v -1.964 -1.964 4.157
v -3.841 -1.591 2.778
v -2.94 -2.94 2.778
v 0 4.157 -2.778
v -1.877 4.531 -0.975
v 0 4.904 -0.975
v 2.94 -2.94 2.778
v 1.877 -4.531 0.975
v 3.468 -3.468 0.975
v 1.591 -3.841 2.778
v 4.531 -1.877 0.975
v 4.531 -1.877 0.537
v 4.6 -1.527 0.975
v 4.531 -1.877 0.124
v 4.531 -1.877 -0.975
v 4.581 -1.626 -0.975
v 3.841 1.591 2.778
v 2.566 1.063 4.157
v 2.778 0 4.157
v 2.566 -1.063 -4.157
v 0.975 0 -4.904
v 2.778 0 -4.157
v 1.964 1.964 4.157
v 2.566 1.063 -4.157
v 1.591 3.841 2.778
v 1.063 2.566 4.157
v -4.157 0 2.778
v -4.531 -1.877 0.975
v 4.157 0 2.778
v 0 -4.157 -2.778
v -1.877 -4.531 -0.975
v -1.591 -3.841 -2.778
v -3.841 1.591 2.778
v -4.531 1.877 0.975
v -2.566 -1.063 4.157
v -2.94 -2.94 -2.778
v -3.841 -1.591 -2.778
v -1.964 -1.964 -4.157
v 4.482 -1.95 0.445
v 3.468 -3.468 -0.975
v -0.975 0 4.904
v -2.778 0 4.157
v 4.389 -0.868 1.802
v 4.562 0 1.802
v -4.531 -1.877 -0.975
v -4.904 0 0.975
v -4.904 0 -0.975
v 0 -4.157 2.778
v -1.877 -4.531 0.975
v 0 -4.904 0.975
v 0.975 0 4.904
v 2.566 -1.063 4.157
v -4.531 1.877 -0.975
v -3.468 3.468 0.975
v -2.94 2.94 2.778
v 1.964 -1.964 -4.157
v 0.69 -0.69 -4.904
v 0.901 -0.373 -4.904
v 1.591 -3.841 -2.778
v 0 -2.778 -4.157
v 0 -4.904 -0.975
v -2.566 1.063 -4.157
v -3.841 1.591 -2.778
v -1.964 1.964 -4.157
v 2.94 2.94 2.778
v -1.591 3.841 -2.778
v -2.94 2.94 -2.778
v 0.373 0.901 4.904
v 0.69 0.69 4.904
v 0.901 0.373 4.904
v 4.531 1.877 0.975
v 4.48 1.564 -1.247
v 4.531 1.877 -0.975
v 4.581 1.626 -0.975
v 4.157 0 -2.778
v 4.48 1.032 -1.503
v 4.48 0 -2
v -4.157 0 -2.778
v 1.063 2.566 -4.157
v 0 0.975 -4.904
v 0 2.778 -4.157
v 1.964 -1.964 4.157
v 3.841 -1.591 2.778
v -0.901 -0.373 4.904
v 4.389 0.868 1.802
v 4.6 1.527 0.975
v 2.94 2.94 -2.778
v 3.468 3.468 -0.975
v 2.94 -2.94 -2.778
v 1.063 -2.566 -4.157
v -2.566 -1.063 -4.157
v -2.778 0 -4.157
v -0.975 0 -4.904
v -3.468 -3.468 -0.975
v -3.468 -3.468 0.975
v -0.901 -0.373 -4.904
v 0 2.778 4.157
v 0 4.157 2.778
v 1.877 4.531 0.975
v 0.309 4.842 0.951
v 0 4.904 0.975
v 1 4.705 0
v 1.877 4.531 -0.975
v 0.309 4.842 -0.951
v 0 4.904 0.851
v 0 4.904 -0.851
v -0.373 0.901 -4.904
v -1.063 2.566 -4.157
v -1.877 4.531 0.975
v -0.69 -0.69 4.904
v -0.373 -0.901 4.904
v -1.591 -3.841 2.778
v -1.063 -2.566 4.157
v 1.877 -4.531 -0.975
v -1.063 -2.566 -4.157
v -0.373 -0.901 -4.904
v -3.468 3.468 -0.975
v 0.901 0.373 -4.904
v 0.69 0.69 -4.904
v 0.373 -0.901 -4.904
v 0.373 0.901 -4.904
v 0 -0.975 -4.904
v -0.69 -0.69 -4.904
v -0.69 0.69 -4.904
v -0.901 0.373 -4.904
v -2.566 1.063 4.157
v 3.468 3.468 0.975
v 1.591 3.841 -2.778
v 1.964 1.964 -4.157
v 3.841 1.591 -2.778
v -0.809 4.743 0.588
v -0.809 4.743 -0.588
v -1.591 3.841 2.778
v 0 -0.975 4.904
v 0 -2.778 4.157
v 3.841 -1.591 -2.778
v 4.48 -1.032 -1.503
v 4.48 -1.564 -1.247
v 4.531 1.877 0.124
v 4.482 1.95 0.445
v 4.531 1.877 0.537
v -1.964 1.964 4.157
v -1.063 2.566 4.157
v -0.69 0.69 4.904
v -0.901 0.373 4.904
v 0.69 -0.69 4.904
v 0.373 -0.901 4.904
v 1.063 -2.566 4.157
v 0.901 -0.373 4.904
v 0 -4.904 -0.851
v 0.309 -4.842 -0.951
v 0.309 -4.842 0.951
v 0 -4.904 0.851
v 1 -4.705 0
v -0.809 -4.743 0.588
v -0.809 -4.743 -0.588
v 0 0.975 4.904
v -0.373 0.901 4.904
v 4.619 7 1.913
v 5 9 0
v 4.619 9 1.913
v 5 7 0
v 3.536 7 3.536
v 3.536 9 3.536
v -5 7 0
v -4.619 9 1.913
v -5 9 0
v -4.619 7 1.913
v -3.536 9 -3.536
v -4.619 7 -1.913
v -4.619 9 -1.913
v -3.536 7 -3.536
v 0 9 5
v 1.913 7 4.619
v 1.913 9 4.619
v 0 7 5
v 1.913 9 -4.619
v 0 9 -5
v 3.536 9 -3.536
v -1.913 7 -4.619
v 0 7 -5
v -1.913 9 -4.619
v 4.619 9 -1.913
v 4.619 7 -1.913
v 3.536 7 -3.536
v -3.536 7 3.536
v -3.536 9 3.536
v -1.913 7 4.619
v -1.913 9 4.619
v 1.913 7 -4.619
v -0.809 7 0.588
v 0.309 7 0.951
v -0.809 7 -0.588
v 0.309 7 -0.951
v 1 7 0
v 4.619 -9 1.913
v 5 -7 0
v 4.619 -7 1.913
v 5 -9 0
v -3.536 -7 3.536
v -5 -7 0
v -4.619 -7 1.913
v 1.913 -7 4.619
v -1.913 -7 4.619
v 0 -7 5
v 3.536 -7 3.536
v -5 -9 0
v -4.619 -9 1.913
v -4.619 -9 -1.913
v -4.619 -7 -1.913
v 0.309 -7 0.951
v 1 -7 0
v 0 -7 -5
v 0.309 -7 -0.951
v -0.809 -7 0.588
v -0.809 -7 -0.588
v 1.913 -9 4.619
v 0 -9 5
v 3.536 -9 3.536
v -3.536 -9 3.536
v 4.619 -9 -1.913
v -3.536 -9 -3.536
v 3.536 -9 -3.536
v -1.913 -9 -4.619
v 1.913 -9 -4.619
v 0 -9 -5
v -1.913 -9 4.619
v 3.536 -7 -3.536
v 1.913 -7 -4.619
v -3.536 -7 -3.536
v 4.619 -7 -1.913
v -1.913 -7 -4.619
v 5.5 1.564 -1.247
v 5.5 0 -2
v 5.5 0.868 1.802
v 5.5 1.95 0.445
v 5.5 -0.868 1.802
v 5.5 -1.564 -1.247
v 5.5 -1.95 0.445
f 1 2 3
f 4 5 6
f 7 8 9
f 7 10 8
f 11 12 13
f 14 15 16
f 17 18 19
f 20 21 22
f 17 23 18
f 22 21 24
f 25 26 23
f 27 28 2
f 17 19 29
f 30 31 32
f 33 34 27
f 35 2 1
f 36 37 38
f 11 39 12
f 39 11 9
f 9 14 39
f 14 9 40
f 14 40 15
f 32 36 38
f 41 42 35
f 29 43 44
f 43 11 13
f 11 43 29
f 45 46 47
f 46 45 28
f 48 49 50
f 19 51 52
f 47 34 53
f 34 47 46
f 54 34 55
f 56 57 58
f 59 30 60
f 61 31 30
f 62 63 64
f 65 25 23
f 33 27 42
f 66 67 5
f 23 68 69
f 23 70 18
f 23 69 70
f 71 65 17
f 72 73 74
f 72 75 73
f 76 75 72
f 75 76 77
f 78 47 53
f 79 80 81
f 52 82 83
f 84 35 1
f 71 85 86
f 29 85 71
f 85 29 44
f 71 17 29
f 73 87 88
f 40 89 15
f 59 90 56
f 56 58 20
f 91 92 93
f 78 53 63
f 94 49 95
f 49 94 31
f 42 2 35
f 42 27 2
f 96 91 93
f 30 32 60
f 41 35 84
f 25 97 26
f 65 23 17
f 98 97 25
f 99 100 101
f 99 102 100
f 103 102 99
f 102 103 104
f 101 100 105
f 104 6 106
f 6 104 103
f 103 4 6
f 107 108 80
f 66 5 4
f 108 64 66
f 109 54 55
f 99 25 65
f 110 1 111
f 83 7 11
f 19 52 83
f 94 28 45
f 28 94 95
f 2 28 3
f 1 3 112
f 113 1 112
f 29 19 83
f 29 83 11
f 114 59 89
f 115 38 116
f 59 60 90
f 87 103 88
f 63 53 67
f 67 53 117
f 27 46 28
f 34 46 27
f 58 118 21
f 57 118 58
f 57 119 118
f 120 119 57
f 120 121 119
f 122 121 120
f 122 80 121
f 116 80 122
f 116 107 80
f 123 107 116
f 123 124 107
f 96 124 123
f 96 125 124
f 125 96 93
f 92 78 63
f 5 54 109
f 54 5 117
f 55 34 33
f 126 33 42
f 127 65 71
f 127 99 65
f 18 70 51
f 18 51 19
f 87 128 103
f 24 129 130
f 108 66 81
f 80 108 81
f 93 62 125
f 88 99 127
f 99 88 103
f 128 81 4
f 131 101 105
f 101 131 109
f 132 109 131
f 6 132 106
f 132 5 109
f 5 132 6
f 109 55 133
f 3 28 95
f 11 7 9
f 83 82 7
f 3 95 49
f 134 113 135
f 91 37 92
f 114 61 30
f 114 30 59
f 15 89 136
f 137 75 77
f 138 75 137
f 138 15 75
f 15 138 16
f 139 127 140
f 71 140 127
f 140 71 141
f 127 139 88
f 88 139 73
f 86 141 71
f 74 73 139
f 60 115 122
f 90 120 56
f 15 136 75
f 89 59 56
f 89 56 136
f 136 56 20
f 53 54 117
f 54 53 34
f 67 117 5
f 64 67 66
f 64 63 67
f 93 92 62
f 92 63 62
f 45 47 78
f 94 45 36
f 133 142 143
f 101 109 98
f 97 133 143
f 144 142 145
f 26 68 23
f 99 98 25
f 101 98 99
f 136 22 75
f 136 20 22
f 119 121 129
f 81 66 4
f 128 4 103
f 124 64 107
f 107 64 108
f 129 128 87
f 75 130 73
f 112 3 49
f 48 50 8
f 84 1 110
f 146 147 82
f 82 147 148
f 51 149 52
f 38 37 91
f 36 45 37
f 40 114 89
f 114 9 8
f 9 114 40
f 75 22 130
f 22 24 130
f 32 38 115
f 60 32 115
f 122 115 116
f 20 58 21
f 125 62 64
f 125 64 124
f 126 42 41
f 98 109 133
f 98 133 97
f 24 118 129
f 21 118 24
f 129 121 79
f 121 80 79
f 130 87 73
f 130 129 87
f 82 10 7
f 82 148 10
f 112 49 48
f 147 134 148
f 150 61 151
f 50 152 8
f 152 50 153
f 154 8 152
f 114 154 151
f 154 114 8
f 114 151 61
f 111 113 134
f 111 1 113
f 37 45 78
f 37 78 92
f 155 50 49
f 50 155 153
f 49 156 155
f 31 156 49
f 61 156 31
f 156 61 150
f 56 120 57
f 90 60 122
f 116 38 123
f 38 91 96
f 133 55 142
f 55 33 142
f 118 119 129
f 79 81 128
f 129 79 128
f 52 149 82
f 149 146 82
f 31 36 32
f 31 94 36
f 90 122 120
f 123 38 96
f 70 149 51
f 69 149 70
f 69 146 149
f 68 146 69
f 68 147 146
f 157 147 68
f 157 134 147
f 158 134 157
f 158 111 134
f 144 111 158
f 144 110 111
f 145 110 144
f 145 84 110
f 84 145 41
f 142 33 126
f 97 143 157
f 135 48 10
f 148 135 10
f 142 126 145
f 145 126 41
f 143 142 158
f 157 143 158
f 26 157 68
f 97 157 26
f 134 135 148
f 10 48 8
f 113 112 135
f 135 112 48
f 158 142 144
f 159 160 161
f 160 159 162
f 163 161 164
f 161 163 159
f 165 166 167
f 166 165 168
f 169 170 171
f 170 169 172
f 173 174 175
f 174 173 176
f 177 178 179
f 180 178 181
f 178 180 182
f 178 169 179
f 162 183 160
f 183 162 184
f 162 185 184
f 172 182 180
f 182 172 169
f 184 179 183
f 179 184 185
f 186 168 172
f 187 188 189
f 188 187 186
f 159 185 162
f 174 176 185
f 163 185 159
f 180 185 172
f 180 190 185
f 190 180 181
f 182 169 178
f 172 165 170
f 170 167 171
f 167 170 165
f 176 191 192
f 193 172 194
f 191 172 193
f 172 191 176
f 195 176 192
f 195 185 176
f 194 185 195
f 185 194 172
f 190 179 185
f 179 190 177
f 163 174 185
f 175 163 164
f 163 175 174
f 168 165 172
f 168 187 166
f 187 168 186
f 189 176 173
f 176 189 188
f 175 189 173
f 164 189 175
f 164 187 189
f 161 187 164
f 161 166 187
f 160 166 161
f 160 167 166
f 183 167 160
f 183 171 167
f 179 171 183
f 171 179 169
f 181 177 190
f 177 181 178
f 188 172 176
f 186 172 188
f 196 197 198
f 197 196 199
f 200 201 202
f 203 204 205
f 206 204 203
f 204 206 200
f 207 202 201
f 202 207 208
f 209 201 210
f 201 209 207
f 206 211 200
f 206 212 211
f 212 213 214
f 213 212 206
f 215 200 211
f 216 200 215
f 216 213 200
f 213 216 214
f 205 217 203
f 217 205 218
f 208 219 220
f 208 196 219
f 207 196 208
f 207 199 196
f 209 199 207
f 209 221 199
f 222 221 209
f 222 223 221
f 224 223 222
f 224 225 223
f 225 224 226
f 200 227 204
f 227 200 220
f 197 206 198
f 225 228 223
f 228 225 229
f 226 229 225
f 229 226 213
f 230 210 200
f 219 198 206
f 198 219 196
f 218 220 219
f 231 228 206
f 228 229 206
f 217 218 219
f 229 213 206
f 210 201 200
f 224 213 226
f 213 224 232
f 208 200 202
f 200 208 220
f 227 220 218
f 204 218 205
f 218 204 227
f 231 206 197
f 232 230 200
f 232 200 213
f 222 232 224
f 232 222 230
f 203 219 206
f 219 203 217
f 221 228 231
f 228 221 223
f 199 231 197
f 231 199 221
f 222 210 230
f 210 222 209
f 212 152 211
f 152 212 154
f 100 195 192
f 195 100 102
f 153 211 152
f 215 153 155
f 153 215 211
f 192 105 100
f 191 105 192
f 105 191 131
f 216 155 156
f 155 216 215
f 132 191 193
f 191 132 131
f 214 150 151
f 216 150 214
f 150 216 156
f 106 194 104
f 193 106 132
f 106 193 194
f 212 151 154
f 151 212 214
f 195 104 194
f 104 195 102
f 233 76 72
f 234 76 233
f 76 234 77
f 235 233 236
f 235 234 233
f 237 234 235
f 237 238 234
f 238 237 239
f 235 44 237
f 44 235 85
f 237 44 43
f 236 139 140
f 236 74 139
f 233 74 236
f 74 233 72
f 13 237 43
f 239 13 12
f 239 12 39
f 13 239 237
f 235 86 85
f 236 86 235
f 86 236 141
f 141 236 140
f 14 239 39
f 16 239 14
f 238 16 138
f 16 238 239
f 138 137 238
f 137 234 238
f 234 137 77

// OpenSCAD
color("white") 
 sphere(r = 5);
 
color("black") 
   translate([0,8,0]) 
    rotate([90,0,0])
      cylinder(h=2, r=5, center=true);

color("black") 
  translate([0,-8,0]) 
   rotate([90,0,0])
     cylinder(h=2, r=5, center=true);


color("black") 
  rotate([90,0,0])
    cylinder(h=16, r=1, center=true);

color("black") translate([4,0,0]) rotate([0,90,0]) cylinder(h=3, r=2, center=true);
